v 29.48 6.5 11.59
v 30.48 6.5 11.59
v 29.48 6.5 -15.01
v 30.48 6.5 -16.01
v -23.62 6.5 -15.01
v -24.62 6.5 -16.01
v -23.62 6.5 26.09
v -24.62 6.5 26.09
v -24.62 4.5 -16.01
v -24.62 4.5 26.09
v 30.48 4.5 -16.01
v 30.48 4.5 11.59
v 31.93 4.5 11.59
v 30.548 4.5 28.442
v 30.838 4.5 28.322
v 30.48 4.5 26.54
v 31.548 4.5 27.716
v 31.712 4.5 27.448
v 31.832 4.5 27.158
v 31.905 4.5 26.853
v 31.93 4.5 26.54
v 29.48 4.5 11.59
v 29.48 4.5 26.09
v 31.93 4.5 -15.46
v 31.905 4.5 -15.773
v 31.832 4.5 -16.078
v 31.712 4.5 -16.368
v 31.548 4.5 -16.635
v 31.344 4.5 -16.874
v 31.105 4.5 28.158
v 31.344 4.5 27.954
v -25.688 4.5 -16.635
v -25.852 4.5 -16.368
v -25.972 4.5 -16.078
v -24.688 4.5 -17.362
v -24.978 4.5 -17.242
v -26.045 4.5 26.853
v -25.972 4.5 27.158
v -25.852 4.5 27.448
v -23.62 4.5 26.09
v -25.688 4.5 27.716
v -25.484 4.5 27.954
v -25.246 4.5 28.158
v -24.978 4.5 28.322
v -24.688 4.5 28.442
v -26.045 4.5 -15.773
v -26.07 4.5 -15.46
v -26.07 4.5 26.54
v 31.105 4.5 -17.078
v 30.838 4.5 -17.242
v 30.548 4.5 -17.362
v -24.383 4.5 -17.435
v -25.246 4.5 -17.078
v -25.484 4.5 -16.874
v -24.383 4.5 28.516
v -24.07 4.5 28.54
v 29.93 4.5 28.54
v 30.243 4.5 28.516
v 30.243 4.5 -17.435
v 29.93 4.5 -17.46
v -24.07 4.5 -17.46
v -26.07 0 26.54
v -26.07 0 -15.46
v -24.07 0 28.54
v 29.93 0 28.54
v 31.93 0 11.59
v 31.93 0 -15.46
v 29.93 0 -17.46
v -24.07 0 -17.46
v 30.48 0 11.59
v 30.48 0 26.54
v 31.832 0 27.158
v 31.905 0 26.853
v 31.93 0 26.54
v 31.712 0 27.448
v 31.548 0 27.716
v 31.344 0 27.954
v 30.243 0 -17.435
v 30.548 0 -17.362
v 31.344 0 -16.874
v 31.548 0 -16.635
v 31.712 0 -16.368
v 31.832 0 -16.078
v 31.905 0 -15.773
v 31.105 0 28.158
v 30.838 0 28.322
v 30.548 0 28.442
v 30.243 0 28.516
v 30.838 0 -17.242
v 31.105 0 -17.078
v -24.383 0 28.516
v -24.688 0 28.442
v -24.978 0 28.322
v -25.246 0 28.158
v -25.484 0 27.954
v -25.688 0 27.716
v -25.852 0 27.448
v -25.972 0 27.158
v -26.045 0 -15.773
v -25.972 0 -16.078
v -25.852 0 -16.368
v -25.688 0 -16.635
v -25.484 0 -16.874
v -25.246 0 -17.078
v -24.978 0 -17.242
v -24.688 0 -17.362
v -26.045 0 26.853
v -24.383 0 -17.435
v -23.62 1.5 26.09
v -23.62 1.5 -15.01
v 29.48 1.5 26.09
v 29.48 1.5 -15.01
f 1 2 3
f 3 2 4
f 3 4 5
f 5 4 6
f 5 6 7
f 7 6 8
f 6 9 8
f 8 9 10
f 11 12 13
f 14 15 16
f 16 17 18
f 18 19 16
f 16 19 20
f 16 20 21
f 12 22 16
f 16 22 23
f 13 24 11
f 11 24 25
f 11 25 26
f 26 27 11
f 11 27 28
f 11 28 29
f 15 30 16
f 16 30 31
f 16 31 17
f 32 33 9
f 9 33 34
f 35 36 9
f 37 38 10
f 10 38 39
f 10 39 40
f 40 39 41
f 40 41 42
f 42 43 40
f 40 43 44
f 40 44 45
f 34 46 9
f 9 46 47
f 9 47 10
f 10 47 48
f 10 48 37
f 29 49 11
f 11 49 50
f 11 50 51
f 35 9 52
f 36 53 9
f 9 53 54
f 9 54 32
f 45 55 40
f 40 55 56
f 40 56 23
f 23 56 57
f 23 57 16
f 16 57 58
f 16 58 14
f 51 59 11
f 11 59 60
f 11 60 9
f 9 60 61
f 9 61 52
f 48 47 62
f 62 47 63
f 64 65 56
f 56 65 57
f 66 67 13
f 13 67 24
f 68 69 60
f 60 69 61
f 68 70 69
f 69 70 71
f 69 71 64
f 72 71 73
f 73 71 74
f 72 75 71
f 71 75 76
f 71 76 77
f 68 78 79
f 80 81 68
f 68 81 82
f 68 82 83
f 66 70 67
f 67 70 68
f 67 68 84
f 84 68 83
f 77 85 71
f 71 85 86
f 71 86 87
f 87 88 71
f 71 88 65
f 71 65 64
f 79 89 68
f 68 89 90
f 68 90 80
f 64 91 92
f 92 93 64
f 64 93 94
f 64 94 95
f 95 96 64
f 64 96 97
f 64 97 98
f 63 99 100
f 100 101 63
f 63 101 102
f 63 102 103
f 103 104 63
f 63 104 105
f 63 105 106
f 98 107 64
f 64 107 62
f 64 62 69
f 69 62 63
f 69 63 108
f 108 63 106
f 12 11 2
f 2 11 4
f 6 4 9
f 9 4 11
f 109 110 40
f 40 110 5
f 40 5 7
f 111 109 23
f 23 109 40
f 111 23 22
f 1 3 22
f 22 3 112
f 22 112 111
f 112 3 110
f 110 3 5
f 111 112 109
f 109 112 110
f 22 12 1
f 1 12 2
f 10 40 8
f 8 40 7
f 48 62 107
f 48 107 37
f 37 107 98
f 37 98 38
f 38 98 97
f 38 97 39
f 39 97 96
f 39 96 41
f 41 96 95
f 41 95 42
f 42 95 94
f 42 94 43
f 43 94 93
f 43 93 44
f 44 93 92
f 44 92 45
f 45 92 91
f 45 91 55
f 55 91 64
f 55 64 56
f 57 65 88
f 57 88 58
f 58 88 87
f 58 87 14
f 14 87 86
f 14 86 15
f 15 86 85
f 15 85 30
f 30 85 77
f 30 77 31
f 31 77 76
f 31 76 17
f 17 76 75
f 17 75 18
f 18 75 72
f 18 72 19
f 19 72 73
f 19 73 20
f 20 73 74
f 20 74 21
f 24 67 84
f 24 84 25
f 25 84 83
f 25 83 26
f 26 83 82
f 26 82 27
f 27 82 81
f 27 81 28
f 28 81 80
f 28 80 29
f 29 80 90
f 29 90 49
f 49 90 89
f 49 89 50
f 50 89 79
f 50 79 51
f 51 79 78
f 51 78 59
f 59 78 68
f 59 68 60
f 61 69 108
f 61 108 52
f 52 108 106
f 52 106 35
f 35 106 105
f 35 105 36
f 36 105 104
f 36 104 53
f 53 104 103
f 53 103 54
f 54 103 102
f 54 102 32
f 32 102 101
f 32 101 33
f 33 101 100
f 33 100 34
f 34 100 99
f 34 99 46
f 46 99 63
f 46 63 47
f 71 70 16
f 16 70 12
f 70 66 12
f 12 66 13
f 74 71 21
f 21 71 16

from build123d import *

# Parameters (mm, degrees)
SKETCH1_W           = 58
SKETCH1_H           = 46
BOSS_EXTRUDE1_DEPTH = 4.5
SKETCH2_W           = 55.1
SKETCH2_H           = 43.1
SKETCH2_W_2         = 53.1
SKETCH2_H_2         = 41.1
BOSS_EXTRUDE2_DEPTH = 2
SKETCH3_W           = 53.1
SKETCH3_H           = 41.1
CUT_EXTRUDE1_DEPTH  = 3
SKETCH4_W           = 1
SKETCH4_H           = 15.5
CUT_EXTRUDE2_DEPTH  = 2
CUT_EXTRUDE4_START  = 5
SKETCH5_W           = 54.1
SKETCH5_H           = 1
CUT_EXTRUDE4_DEPTH  = 2
FILLET1_R           = 2
SKETCH6_W           = 1.45
SKETCH6_H           = 14.95
CUT_EXTRUDE5_DEPTH  = 5.5


with BuildPart() as part:
    # Sketch1 → Boss-Extrude1 (new body)
    with BuildSketch(Plane(origin=(0, 0, 0), x_dir=(1, 0, 0), z_dir=(0, 1, 0))):
        with Locations((2.929896907, -5.540206186)):
            Rectangle(SKETCH1_W, SKETCH1_H)
    extrude(amount=BOSS_EXTRUDE1_DEPTH)

    # Sketch2 → Boss-Extrude2 (add)
    with BuildSketch(Plane(origin=(0, 4.5, 0), x_dir=(1, 0, 0), z_dir=(0, 1, 0))):
        with Locations((2.929896907, -5.540206186)):
            Rectangle(SKETCH2_W, SKETCH2_H)
        with Locations((2.929896907, -5.540206186)):
            Rectangle(SKETCH2_W_2, SKETCH2_H_2, mode=Mode.SUBTRACT)
    extrude(amount=BOSS_EXTRUDE2_DEPTH)

    # Sketch3 → Cut-Extrude1 (cut)
    with BuildSketch(Plane(origin=(0, 4.5, 0), x_dir=(1, 0, 0), z_dir=(0, 1, 0))):
        with Locations((2.929896907, -5.540206186)):
            Rectangle(SKETCH3_W, SKETCH3_H)
    extrude(amount=-CUT_EXTRUDE1_DEPTH, mode=Mode.SUBTRACT)

    # Sketch4 → Cut-Extrude2 (cut)
    with BuildSketch(Plane(origin=(0, 6.5, 0), x_dir=(1, 0, 0), z_dir=(0, 1, 0))):
        with Locations((29.979896907, -19.340206186)):
            Rectangle(SKETCH4_W, SKETCH4_H)
    extrude(amount=-CUT_EXTRUDE2_DEPTH, mode=Mode.SUBTRACT)

    # Sketch5 → Cut-Extrude4 (cut)
    with BuildSketch(Plane(origin=(0, 1.5, 0), x_dir=(1, 0, 0), z_dir=(0, 1, 0)).offset(CUT_EXTRUDE4_START)):
        with Locations((2.429896907, -26.590206186)):
            Rectangle(SKETCH5_W, SKETCH5_H)
    extrude(amount=-CUT_EXTRUDE4_DEPTH, mode=Mode.SUBTRACT)

    # Fillet1
    fillet1_edges = [part.edges().sort_by_distance(p)[0] for p in [
        (-26.070103093, 2.25, -17.459793814),
        (31.929896907, 2.25, -17.459793814),
        (31.929896907, 2.25, 28.540206186),
        (-26.070103093, 2.25, 28.540206186),
    ]]
    fillet(fillet1_edges, radius=FILLET1_R)

    # Sketch6 → Cut-Extrude5 (cut, through all)
    with BuildSketch(Plane(origin=(0, 4.5, 0), x_dir=(1, 0, 0), z_dir=(0, 1, 0))):
        with Locations((31.204896907, -19.065206186)):
            Rectangle(SKETCH6_W, SKETCH6_H)
    extrude(amount=-CUT_EXTRUDE5_DEPTH, mode=Mode.SUBTRACT)


solid = part.part
